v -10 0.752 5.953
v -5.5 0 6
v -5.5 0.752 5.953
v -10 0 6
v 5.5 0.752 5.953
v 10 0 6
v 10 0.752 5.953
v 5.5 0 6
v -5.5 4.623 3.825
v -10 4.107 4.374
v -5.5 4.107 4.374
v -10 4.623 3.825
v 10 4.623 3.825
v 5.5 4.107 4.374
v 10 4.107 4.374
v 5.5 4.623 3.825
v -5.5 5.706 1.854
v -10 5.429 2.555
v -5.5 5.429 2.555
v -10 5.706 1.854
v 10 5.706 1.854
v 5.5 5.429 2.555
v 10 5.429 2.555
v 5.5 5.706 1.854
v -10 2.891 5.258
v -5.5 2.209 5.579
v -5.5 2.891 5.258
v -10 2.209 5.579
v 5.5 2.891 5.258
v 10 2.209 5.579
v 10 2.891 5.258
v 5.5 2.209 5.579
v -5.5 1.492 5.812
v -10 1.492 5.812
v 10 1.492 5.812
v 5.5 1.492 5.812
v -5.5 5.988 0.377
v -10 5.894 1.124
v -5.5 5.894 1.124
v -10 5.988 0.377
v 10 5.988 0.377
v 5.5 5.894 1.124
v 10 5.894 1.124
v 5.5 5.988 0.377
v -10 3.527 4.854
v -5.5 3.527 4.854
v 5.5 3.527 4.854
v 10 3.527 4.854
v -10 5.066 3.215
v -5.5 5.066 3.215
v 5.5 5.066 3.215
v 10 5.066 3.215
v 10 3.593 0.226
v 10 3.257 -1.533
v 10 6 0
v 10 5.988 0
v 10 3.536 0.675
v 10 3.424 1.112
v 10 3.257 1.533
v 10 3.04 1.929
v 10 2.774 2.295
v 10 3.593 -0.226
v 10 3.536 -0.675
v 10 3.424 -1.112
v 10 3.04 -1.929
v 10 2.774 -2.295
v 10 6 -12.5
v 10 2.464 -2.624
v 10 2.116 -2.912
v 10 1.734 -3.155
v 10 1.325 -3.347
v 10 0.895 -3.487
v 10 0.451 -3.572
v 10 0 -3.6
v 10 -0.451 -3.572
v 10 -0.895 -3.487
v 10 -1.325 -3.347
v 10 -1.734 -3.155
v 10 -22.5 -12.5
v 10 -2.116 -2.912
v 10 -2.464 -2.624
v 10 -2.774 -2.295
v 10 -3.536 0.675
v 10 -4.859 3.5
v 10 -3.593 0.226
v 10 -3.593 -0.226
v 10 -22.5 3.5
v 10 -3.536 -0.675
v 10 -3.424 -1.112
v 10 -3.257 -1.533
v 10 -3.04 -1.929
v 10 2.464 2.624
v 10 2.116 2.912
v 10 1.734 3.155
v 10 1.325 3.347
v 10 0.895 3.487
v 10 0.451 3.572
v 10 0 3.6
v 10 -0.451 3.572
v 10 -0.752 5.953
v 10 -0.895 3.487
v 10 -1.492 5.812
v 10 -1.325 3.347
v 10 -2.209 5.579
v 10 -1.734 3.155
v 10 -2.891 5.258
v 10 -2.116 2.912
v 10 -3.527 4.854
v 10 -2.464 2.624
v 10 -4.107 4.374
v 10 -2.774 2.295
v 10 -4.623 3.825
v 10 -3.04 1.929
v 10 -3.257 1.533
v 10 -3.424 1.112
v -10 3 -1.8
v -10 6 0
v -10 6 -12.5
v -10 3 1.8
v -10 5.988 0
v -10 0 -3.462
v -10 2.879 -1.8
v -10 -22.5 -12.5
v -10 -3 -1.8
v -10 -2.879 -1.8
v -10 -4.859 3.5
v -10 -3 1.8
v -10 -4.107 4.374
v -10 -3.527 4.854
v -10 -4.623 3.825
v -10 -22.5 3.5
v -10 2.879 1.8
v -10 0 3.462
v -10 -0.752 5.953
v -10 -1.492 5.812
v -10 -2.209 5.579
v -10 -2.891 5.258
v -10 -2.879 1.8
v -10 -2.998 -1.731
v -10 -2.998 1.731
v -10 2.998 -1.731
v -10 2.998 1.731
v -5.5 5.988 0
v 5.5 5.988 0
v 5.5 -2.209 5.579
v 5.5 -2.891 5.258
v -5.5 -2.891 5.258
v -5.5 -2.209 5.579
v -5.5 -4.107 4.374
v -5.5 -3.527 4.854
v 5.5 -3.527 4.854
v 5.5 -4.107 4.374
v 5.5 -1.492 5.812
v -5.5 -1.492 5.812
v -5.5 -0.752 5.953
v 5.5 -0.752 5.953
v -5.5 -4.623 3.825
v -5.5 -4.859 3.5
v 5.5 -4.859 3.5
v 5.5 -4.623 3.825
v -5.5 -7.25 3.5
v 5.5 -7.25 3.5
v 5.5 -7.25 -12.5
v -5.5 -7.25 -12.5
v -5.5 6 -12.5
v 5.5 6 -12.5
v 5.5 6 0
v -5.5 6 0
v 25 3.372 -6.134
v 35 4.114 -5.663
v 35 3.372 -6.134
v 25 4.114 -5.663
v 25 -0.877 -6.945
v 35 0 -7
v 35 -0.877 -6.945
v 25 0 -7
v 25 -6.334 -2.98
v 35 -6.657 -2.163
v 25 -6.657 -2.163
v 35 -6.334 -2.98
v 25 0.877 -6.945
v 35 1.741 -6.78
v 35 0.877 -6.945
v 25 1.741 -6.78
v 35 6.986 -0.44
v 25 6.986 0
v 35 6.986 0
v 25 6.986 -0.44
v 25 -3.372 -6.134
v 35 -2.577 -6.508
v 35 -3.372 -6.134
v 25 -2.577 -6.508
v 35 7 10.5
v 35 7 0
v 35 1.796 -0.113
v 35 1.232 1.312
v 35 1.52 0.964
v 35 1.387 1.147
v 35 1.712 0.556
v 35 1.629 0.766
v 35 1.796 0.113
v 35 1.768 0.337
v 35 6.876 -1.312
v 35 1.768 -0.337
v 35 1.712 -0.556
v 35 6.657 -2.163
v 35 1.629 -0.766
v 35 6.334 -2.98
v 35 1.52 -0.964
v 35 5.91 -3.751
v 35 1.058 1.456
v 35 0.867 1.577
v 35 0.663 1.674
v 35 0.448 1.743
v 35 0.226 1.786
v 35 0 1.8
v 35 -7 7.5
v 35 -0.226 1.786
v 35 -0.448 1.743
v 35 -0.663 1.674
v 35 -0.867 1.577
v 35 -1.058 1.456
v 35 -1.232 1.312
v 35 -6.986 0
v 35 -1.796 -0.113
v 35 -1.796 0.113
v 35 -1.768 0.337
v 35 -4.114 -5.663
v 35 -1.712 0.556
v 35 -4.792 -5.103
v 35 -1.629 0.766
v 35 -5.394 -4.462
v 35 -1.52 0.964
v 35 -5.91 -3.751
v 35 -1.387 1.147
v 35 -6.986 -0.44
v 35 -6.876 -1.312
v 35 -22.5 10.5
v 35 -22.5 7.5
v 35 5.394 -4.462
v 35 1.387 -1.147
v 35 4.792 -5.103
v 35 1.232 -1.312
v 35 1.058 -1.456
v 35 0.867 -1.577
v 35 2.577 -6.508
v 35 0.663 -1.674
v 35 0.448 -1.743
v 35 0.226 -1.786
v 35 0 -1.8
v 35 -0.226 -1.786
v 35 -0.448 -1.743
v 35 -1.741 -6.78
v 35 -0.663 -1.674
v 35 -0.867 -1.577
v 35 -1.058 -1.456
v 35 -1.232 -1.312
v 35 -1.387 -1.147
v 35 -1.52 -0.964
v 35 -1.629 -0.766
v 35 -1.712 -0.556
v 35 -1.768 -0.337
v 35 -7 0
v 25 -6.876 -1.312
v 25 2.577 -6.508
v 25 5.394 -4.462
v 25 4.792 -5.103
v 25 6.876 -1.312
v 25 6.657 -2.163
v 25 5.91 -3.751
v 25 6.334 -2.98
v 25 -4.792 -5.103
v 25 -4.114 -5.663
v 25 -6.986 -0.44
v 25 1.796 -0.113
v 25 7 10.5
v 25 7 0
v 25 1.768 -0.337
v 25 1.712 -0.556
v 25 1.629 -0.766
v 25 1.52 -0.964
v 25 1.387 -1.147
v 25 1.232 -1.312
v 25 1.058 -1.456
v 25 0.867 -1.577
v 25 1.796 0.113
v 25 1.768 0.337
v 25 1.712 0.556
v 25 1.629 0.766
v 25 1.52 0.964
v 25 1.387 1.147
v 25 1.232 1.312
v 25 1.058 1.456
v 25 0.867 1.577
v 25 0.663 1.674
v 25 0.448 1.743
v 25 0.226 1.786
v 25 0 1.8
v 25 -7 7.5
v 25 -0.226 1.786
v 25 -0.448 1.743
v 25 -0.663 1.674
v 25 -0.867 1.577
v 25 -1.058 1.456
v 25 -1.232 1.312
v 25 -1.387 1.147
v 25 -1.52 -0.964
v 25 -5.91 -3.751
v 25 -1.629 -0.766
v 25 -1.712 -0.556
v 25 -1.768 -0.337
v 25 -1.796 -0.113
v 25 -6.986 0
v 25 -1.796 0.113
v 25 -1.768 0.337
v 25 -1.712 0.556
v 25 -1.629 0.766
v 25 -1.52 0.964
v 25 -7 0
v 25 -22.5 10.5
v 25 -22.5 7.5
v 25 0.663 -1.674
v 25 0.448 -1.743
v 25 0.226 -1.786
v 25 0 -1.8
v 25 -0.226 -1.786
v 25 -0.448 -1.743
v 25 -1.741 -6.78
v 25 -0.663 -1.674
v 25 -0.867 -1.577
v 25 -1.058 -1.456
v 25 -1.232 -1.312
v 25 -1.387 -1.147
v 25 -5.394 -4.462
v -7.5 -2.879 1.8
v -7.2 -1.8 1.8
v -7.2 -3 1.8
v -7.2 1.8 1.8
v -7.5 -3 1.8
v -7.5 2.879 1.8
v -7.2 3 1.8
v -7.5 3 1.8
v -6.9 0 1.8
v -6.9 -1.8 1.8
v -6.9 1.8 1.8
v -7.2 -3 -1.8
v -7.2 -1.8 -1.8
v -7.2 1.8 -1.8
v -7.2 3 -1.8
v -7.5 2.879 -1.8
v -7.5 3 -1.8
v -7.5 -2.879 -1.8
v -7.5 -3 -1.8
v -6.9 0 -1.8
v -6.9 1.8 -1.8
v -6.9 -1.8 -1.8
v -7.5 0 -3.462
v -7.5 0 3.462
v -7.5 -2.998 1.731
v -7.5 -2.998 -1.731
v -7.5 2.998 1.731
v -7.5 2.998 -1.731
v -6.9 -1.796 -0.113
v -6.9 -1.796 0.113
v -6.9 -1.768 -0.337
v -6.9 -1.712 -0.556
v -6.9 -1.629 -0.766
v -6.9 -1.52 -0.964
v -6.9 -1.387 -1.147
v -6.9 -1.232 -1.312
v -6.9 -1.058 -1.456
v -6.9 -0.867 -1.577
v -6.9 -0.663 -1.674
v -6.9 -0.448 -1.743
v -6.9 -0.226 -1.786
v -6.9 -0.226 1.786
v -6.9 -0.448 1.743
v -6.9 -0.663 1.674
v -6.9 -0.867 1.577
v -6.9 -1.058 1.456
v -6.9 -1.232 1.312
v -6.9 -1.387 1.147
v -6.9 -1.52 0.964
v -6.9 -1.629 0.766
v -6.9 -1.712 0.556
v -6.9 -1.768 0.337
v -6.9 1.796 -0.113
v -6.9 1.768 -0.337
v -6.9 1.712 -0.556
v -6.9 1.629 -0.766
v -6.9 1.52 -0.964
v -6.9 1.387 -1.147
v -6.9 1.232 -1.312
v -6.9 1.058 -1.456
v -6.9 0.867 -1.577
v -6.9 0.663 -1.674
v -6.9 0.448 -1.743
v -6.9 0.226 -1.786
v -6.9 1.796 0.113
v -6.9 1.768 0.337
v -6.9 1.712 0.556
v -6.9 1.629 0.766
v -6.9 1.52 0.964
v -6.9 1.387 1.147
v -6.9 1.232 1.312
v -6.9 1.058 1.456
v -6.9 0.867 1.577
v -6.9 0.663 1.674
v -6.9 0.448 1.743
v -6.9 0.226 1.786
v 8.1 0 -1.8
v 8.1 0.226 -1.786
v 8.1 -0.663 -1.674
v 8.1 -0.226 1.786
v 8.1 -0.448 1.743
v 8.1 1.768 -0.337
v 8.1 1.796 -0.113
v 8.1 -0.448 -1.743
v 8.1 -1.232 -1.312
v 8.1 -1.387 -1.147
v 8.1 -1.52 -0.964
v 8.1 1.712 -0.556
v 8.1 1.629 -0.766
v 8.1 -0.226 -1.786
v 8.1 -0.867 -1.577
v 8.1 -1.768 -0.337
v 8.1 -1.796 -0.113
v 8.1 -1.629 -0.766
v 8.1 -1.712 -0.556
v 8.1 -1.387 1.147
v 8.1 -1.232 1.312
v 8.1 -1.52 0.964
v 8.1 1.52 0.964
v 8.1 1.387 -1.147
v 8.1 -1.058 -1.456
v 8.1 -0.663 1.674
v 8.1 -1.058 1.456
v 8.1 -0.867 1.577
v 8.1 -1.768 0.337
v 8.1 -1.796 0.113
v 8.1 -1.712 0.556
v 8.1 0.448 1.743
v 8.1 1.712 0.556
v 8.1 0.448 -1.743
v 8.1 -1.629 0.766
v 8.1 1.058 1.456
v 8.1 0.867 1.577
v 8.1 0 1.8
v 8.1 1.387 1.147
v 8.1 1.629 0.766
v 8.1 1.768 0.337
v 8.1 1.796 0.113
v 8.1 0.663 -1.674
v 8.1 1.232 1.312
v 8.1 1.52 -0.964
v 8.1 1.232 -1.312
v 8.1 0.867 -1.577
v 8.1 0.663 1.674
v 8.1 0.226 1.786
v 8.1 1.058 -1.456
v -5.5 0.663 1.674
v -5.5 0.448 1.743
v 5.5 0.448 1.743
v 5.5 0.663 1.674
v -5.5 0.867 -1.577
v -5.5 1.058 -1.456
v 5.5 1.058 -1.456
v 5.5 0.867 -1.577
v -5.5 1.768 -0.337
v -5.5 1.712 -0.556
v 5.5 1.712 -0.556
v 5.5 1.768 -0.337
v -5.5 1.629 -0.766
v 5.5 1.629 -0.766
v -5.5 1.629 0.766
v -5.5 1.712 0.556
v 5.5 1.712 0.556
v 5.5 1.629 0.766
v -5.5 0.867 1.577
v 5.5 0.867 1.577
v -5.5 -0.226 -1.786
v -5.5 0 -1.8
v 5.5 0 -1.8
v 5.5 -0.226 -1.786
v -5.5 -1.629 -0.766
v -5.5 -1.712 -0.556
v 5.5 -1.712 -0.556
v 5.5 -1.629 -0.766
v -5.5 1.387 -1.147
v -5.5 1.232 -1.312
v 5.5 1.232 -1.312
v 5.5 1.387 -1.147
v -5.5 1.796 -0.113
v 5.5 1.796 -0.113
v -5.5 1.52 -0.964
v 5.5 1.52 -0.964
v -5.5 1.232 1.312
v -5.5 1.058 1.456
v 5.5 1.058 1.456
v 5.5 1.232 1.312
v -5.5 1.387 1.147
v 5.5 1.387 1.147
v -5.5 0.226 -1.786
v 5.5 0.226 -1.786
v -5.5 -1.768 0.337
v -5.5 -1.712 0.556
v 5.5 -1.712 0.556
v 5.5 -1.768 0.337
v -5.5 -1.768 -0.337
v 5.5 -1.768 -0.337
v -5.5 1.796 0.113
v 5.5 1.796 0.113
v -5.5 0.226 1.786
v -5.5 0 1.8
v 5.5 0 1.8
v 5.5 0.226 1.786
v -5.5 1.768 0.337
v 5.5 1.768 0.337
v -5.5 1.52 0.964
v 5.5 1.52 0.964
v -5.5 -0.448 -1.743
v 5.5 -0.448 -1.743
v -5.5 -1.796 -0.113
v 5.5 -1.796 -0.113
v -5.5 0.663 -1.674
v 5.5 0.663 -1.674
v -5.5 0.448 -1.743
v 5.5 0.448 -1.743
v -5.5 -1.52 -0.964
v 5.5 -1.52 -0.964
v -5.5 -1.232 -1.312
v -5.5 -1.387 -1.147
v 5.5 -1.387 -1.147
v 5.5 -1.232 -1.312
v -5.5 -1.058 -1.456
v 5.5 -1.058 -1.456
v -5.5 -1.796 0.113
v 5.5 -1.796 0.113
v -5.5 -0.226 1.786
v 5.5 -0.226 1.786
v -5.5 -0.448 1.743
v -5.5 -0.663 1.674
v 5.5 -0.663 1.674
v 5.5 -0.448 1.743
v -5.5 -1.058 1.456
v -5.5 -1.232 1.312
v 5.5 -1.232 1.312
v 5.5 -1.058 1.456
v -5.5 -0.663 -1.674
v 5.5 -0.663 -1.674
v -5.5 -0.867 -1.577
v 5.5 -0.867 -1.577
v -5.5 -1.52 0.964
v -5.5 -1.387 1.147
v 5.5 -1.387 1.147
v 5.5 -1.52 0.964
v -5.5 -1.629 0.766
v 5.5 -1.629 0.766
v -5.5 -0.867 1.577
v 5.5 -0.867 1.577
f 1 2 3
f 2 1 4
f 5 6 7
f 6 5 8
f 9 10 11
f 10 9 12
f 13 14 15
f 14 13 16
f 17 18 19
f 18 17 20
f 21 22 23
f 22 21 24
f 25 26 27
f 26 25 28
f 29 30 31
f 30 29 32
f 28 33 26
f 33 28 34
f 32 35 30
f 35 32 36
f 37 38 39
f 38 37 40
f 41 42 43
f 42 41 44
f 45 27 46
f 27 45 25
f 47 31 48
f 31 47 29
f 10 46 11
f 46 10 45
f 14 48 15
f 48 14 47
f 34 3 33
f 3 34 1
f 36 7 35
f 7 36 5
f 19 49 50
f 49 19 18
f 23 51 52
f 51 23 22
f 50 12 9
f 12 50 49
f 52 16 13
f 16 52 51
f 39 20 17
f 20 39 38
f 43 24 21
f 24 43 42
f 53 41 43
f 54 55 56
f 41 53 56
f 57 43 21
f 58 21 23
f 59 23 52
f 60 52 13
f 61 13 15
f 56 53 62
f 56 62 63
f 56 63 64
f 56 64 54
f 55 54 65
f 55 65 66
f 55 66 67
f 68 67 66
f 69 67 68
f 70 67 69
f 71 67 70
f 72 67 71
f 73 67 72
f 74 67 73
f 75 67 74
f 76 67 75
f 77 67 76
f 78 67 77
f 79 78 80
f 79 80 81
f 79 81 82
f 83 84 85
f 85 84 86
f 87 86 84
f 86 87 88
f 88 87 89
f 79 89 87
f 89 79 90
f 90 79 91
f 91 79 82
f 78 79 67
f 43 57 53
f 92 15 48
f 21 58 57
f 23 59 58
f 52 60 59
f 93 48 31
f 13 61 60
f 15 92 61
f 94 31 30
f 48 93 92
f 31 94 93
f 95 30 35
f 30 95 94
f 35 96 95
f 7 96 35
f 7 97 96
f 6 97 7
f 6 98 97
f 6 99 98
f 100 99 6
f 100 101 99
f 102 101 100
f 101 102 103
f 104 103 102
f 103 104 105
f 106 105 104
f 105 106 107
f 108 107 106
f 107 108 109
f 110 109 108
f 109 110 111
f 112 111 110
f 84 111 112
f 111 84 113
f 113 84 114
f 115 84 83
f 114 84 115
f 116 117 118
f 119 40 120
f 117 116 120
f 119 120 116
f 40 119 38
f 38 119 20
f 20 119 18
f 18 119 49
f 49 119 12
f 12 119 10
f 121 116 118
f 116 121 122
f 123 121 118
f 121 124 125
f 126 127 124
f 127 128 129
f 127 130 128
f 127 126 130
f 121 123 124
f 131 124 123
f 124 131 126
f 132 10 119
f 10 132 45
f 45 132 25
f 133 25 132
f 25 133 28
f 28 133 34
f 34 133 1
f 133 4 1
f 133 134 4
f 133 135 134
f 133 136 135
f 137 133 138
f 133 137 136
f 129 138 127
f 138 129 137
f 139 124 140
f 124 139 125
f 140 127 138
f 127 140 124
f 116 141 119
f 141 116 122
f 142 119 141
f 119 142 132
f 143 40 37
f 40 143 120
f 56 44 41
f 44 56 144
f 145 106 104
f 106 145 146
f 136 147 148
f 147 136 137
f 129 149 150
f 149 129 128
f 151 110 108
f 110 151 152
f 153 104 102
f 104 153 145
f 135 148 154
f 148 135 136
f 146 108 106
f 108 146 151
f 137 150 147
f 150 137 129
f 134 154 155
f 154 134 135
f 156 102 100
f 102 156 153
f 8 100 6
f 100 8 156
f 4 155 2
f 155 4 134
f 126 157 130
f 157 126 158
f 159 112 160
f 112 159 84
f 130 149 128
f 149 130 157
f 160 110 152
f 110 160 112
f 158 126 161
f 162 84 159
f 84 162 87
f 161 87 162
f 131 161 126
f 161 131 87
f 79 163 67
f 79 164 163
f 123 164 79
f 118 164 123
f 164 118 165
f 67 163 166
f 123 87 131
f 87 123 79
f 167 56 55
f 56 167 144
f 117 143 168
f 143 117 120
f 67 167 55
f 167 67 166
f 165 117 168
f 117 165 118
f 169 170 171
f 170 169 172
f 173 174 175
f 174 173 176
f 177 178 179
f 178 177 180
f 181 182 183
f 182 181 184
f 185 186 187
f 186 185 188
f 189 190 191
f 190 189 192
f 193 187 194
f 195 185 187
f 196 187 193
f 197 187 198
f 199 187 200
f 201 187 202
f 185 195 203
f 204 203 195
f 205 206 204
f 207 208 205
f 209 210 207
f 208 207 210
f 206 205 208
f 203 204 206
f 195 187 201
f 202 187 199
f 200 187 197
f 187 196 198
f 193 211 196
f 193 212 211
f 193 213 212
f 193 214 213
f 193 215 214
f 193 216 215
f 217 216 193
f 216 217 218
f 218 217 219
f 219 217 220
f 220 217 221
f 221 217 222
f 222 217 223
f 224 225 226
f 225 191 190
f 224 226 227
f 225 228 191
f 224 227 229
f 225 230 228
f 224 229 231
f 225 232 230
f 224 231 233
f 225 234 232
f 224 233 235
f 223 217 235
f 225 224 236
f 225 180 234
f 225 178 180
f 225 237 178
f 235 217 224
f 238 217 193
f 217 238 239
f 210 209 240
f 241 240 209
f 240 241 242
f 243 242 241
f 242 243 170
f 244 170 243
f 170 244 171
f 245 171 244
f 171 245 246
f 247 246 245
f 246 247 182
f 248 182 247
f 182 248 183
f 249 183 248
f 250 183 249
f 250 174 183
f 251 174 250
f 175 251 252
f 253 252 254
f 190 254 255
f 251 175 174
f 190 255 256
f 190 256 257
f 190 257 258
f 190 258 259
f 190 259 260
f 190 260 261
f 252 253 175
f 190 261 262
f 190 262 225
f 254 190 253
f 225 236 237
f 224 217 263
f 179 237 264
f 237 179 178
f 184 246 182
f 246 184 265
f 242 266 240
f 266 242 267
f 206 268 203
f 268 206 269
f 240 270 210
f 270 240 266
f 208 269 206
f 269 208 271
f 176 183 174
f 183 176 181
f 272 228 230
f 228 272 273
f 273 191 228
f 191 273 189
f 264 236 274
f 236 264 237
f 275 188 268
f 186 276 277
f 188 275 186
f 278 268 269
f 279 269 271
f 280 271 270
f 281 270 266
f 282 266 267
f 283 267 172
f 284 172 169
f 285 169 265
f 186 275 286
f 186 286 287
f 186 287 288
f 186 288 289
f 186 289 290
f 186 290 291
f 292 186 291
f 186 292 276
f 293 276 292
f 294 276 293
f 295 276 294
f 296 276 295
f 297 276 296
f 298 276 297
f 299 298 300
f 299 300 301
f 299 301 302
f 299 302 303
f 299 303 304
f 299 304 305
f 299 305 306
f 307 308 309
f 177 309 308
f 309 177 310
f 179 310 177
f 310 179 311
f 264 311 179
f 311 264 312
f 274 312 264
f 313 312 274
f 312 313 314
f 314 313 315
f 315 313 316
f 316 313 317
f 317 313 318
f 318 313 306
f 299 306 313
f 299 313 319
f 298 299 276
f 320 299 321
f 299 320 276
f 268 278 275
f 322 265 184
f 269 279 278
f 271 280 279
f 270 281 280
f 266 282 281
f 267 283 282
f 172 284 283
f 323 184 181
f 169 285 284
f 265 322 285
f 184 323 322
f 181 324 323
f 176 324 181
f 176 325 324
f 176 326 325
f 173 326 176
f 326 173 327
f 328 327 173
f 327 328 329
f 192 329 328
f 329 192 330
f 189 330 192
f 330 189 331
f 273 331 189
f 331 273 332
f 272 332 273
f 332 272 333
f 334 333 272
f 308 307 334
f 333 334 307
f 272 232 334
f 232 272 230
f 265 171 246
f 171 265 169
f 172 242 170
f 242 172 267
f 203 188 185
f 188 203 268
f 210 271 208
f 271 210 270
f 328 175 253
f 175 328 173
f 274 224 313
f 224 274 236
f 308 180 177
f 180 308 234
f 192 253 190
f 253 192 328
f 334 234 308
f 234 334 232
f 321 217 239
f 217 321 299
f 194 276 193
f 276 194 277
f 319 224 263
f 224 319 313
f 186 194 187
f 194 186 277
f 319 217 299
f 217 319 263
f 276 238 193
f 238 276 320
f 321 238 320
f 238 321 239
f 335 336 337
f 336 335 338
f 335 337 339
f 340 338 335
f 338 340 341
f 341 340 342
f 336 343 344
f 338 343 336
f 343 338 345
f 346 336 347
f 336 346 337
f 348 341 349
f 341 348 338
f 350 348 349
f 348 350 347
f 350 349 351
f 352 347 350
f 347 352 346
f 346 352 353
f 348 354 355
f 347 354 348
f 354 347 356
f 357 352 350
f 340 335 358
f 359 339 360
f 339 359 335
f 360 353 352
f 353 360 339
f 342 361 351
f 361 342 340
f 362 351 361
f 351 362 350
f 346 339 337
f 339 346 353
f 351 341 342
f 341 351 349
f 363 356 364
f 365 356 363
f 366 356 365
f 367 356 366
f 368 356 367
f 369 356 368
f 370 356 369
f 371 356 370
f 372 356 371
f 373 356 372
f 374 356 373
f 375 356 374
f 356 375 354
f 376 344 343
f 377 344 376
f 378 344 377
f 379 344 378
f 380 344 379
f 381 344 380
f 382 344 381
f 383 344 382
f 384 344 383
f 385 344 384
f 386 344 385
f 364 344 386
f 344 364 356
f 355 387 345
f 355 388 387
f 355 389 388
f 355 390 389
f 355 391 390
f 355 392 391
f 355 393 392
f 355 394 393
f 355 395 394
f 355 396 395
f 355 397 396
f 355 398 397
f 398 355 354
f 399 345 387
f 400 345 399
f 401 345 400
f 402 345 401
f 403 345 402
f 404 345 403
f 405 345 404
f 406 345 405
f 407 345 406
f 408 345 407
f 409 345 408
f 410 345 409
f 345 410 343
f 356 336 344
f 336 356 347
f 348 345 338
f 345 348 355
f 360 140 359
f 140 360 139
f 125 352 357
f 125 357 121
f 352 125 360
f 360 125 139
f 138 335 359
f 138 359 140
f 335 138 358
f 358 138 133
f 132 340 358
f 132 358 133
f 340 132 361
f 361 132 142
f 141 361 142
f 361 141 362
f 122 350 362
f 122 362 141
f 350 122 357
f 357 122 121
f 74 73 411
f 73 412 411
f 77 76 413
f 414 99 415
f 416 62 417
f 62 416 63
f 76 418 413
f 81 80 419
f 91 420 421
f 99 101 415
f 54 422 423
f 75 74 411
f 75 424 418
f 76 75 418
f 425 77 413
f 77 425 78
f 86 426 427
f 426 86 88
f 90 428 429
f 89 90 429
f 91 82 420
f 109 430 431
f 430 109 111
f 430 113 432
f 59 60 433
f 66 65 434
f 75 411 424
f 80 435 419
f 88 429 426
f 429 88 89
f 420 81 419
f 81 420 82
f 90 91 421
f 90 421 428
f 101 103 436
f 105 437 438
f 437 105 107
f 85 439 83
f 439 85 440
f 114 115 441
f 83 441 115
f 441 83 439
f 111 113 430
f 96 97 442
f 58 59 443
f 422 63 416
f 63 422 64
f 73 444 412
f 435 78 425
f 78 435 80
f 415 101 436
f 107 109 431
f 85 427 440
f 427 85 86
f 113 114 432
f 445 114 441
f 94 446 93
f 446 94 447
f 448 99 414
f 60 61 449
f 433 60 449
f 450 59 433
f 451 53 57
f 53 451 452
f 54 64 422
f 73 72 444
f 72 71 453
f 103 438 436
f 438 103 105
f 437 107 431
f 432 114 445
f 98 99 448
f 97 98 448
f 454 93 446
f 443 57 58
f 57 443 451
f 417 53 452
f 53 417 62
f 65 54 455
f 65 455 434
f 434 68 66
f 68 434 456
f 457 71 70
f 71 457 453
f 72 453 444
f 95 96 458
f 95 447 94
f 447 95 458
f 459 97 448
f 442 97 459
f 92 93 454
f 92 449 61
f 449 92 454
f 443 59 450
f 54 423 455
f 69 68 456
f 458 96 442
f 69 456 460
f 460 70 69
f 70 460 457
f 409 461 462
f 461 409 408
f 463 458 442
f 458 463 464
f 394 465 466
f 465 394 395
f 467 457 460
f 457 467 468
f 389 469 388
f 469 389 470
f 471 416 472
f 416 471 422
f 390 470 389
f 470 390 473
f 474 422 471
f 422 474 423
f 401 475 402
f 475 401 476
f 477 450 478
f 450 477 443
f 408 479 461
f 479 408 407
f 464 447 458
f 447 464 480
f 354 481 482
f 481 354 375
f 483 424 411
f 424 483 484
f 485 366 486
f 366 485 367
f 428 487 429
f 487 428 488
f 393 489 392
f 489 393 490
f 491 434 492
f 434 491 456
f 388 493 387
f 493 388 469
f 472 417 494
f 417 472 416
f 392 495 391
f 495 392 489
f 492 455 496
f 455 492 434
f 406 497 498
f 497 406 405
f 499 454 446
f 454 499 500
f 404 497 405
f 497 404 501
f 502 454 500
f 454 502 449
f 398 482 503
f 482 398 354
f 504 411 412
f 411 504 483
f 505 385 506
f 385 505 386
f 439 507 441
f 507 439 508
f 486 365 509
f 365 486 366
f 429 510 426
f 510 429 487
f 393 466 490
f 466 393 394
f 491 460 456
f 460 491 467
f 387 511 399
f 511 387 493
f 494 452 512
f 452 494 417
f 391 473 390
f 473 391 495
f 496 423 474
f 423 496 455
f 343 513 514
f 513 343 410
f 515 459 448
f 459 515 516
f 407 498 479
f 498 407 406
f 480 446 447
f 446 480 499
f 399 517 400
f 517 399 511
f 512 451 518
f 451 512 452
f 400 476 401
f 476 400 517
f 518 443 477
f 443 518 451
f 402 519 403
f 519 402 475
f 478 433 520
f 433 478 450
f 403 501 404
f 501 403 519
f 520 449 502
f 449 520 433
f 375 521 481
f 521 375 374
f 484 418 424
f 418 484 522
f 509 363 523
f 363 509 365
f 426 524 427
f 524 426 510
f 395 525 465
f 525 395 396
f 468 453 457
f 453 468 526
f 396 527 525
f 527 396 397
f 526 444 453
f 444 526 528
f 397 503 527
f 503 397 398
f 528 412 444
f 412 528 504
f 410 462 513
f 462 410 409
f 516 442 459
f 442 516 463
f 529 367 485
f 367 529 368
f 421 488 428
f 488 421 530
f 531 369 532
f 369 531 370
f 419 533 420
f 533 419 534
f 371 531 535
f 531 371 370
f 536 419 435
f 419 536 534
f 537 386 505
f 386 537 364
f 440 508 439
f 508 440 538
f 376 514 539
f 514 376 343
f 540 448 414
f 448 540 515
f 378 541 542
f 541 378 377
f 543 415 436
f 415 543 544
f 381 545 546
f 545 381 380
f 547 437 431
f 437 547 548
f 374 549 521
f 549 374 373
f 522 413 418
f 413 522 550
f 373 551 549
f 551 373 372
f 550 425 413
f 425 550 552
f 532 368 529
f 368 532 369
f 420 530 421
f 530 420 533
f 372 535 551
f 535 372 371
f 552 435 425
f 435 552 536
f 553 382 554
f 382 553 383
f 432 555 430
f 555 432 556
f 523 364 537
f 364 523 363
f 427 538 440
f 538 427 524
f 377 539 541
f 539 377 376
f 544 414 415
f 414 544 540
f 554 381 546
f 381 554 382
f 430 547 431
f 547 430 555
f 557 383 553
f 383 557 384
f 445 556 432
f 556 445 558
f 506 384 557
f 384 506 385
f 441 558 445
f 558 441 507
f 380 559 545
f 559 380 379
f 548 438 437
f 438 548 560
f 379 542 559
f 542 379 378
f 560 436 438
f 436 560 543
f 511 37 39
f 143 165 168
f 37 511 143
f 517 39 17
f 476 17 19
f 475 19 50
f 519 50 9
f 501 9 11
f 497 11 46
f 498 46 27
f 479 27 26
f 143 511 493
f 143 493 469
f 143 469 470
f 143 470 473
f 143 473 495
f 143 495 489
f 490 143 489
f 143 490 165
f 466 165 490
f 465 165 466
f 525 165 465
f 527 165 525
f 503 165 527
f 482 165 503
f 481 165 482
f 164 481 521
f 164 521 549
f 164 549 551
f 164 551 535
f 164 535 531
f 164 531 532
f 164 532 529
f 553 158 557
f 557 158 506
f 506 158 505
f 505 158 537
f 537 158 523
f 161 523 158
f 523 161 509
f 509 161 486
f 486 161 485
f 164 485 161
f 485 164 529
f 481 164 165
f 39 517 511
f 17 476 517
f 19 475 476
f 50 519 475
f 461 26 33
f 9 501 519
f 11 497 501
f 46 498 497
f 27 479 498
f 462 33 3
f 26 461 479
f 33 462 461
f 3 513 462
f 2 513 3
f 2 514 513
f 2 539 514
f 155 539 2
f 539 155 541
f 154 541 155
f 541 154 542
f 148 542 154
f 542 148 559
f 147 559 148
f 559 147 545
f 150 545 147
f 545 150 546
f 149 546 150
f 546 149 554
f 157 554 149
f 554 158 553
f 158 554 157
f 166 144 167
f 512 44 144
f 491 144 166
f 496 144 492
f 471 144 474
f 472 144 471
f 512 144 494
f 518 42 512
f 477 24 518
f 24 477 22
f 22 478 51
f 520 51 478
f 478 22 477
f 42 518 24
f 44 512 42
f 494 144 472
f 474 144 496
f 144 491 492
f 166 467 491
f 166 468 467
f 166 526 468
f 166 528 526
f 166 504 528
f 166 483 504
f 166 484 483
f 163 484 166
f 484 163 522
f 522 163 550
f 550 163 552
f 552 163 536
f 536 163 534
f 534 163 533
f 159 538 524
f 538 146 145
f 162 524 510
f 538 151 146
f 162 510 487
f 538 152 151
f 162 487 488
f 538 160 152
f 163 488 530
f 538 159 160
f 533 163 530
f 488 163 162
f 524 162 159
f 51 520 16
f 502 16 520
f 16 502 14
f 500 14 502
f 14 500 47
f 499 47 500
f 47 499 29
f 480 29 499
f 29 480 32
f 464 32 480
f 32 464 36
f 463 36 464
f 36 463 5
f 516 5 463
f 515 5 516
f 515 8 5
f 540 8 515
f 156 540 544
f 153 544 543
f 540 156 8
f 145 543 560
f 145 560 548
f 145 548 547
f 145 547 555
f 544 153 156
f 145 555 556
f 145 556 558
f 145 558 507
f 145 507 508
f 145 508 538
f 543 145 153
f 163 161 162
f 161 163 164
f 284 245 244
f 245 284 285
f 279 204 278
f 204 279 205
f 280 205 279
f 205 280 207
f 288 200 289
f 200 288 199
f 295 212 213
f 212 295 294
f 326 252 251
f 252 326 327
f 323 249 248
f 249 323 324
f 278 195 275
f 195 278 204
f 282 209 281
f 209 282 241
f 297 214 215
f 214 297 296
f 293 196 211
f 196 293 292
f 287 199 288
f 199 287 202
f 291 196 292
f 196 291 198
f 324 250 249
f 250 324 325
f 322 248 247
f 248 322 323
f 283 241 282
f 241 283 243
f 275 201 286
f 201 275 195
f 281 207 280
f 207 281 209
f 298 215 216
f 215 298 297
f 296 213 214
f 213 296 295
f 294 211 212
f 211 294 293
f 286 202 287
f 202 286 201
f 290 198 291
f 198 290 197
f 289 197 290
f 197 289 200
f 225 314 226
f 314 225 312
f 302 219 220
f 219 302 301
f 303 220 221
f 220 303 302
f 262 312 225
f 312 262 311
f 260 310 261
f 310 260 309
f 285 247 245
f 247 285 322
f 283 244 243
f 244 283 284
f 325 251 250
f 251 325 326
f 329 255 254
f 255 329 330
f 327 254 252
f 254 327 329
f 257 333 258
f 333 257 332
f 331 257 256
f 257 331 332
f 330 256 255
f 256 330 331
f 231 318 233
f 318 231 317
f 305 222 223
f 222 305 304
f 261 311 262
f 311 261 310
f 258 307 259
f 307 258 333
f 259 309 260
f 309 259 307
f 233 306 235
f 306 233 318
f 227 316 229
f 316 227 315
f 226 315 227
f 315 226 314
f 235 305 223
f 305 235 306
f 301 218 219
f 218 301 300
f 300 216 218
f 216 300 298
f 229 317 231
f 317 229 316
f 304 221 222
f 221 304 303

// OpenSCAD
$fn = 50;


difference() {
	union() {
		translate(v = [-10.0000000000, 0, 0.0000000000]) {
			rotate(a = [0, 90, 0]) {
				cylinder(h = 20, r = 6.0000000000);
			}
		}
		translate(v = [-10.0000000000, -22.5000000000, -12.5000000000]) {
			cube(size = [20, 22.5000000000, 16]);
		}
		translate(v = [-10.0000000000, -21.0000000000, -12.5000000000]) {
			cube(size = [20, 27, 12.5000000000]);
		}
		translate(v = [25.0000000000, 0, 0.0000000000]) {
			rotate(a = [0, 90, 0]) {
				cylinder(h = 10, r = 7.0000000000);
			}
		}
		translate(v = [25.0000000000, -7.0000000000, 0]) {
			cube(size = [10, 14, 7.5000000000]);
		}
		translate(v = [25.0000000000, -22.5000000000, 7.5000000000]) {
			cube(size = [10, 29.5000000000, 3]);
		}
	}
	union() {
		translate(v = [10.0000000000, 0, 0]) {
			rotate(a = [0, 90, 0]) {
				difference() {
					union() {
						translate(v = [0, 0, -20.0000000000]) {
							rotate(a = [0, 0, 0]) {
								difference() {
									union() {
										translate(v = [-1.8000000000, -3.0000000000, -0.3000000000]) {
											cube(size = [3.6000000000, 6.0000000000, 0.3000000000]);
										}
										translate(v = [-1.8000000000, -1.8000000000, -0.6000000000]) {
											cube(size = [3.6000000000, 3.6000000000, 0.3000000000]);
										}
										translate(v = [-1.8000000000, -3.0000000000, 2.5000000000]) {
											cube(size = [3.6000000000, 6.0000000000, 0.3000000000]);
										}
										translate(v = [-1.8000000000, -1.8000000000, 2.8000000000]) {
											cube(size = [3.6000000000, 3.6000000000, 0.3000000000]);
										}
										linear_extrude(height = 2.5000000000) {
											polygon(points = [[3.4620000000, 0.0000000000], [1.7310000000, 2.9981799479], [-1.7310000000, 2.9981799479], [-3.4620000000, 0.0000000000], [-1.7310000000, -2.9981799479], [1.7310000000, -2.9981799479]]);
										}
										translate(v = [-1.8000000000, -3.0000000000, -0.3000000000]) {
											cube(size = [3.6000000000, 6.0000000000, 0.3000000000]);
										}
										translate(v = [-1.8000000000, -1.8000000000, -0.6000000000]) {
											cube(size = [3.6000000000, 3.6000000000, 0.3000000000]);
										}
										translate(v = [-1.8000000000, -3.0000000000, 2.5000000000]) {
											cube(size = [3.6000000000, 6.0000000000, 0.3000000000]);
										}
										translate(v = [-1.8000000000, -1.8000000000, 2.8000000000]) {
											cube(size = [3.6000000000, 3.6000000000, 0.3000000000]);
										}
										translate(v = [-1.8000000000, -3.0000000000, -0.3000000000]) {
											cube(size = [3.6000000000, 6.0000000000, 0.3000000000]);
										}
										translate(v = [-1.8000000000, -1.8000000000, -0.6000000000]) {
											cube(size = [3.6000000000, 3.6000000000, 0.3000000000]);
										}
										translate(v = [-1.8000000000, -3.0000000000, 2.5000000000]) {
											cube(size = [3.6000000000, 6.0000000000, 0.3000000000]);
										}
										translate(v = [-1.8000000000, -1.8000000000, 2.8000000000]) {
											cube(size = [3.6000000000, 3.6000000000, 0.3000000000]);
										}
									}
									union();
								}
							}
						}
						translate(v = [0, 0, -20.0000000000]) {
							rotate(a = [0, 0, 0]) {
								difference() {
									union() {
										translate(v = [-1.8000000000, -3.0000000000, -0.3000000000]) {
											cube(size = [3.6000000000, 6.0000000000, 0.3000000000]);
										}
										translate(v = [-1.8000000000, -1.8000000000, -0.6000000000]) {
											cube(size = [3.6000000000, 3.6000000000, 0.3000000000]);
										}
										translate(v = [-1.8000000000, -3.0000000000, 2.5000000000]) {
											cube(size = [3.6000000000, 6.0000000000, 0.3000000000]);
										}
										translate(v = [-1.8000000000, -1.8000000000, 2.8000000000]) {
											cube(size = [3.6000000000, 3.6000000000, 0.3000000000]);
										}
										linear_extrude(height = 2.5000000000) {
											polygon(points = [[3.4620000000, 0.0000000000], [1.7310000000, 2.9981799479], [-1.7310000000, 2.9981799479], [-3.4620000000, 0.0000000000], [-1.7310000000, -2.9981799479], [1.7310000000, -2.9981799479]]);
										}
										translate(v = [-1.8000000000, -3.0000000000, -0.3000000000]) {
											cube(size = [3.6000000000, 6.0000000000, 0.3000000000]);
										}
										translate(v = [-1.8000000000, -1.8000000000, -0.6000000000]) {
											cube(size = [3.6000000000, 3.6000000000, 0.3000000000]);
										}
										translate(v = [-1.8000000000, -3.0000000000, 2.5000000000]) {
											cube(size = [3.6000000000, 6.0000000000, 0.3000000000]);
										}
										translate(v = [-1.8000000000, -1.8000000000, 2.8000000000]) {
											cube(size = [3.6000000000, 3.6000000000, 0.3000000000]);
										}
										translate(v = [-1.8000000000, -3.0000000000, -0.3000000000]) {
											cube(size = [3.6000000000, 6.0000000000, 0.3000000000]);
										}
										translate(v = [-1.8000000000, -1.8000000000, -0.6000000000]) {
											cube(size = [3.6000000000, 3.6000000000, 0.3000000000]);
										}
										translate(v = [-1.8000000000, -3.0000000000, 2.5000000000]) {
											cube(size = [3.6000000000, 6.0000000000, 0.3000000000]);
										}
										translate(v = [-1.8000000000, -1.8000000000, 2.8000000000]) {
											cube(size = [3.6000000000, 3.6000000000, 0.3000000000]);
										}
									}
									union();
								}
							}
						}
						translate(v = [0, 0, -20.0000000000]) {
							rotate(a = [0, 0, 0]) {
								difference() {
									union() {
										translate(v = [-1.8000000000, -3.0000000000, -0.3000000000]) {
											cube(size = [3.6000000000, 6.0000000000, 0.3000000000]);
										}
										translate(v = [-1.8000000000, -1.8000000000, -0.6000000000]) {
											cube(size = [3.6000000000, 3.6000000000, 0.3000000000]);
										}
										translate(v = [-1.8000000000, -3.0000000000, 2.5000000000]) {
											cube(size = [3.6000000000, 6.0000000000, 0.3000000000]);
										}
										translate(v = [-1.8000000000, -1.8000000000, 2.8000000000]) {
											cube(size = [3.6000000000, 3.6000000000, 0.3000000000]);
										}
										linear_extrude(height = 2.5000000000) {
											polygon(points = [[3.4620000000, 0.0000000000], [1.7310000000, 2.9981799479], [-1.7310000000, 2.9981799479], [-3.4620000000, 0.0000000000], [-1.7310000000, -2.9981799479], [1.7310000000, -2.9981799479]]);
										}
										translate(v = [-1.8000000000, -3.0000000000, -0.3000000000]) {
											cube(size = [3.6000000000, 6.0000000000, 0.3000000000]);
										}
										translate(v = [-1.8000000000, -1.8000000000, -0.6000000000]) {
											cube(size = [3.6000000000, 3.6000000000, 0.3000000000]);
										}
										translate(v = [-1.8000000000, -3.0000000000, 2.5000000000]) {
											cube(size = [3.6000000000, 6.0000000000, 0.3000000000]);
										}
										translate(v = [-1.8000000000, -1.8000000000, 2.8000000000]) {
											cube(size = [3.6000000000, 3.6000000000, 0.3000000000]);
										}
										translate(v = [-1.8000000000, -3.0000000000, -0.3000000000]) {
											cube(size = [3.6000000000, 6.0000000000, 0.3000000000]);
										}
										translate(v = [-1.8000000000, -1.8000000000, -0.6000000000]) {
											cube(size = [3.6000000000, 3.6000000000, 0.3000000000]);
										}
										translate(v = [-1.8000000000, -3.0000000000, 2.5000000000]) {
											cube(size = [3.6000000000, 6.0000000000, 0.3000000000]);
										}
										translate(v = [-1.8000000000, -1.8000000000, 2.8000000000]) {
											cube(size = [3.6000000000, 3.6000000000, 0.3000000000]);
										}
									}
									union();
								}
							}
						}
						translate(v = [0, 0, -20.0000000000]) {
							cylinder(h = 20, r = 1.5000000000);
						}
						translate(v = [0, 0, -1.9000000000]) {
							cylinder(h = 1.9000000000, r1 = 1.8000000000, r2 = 3.6000000000);
						}
						translate(v = [0, 0, -20.0000000000]) {
							cylinder(h = 20, r = 1.8000000000);
						}
						translate(v = [0, 0, -20.0000000000]) {
							cylinder(h = 20, r = 1.5000000000);
						}
					}
					union();
				}
			}
		}
		translate(v = [-5.5000000000, -7.2500000000, -12.5000000000]) {
			cube(size = [11, 17.5000000000, 20]);
		}
		translate(v = [25.0000000000, 0, 0]) {
			rotate(a = [0, 90, 0]) {
				cylinder(h = 10, r = 1.8000000000);
			}
		}
	}
}
